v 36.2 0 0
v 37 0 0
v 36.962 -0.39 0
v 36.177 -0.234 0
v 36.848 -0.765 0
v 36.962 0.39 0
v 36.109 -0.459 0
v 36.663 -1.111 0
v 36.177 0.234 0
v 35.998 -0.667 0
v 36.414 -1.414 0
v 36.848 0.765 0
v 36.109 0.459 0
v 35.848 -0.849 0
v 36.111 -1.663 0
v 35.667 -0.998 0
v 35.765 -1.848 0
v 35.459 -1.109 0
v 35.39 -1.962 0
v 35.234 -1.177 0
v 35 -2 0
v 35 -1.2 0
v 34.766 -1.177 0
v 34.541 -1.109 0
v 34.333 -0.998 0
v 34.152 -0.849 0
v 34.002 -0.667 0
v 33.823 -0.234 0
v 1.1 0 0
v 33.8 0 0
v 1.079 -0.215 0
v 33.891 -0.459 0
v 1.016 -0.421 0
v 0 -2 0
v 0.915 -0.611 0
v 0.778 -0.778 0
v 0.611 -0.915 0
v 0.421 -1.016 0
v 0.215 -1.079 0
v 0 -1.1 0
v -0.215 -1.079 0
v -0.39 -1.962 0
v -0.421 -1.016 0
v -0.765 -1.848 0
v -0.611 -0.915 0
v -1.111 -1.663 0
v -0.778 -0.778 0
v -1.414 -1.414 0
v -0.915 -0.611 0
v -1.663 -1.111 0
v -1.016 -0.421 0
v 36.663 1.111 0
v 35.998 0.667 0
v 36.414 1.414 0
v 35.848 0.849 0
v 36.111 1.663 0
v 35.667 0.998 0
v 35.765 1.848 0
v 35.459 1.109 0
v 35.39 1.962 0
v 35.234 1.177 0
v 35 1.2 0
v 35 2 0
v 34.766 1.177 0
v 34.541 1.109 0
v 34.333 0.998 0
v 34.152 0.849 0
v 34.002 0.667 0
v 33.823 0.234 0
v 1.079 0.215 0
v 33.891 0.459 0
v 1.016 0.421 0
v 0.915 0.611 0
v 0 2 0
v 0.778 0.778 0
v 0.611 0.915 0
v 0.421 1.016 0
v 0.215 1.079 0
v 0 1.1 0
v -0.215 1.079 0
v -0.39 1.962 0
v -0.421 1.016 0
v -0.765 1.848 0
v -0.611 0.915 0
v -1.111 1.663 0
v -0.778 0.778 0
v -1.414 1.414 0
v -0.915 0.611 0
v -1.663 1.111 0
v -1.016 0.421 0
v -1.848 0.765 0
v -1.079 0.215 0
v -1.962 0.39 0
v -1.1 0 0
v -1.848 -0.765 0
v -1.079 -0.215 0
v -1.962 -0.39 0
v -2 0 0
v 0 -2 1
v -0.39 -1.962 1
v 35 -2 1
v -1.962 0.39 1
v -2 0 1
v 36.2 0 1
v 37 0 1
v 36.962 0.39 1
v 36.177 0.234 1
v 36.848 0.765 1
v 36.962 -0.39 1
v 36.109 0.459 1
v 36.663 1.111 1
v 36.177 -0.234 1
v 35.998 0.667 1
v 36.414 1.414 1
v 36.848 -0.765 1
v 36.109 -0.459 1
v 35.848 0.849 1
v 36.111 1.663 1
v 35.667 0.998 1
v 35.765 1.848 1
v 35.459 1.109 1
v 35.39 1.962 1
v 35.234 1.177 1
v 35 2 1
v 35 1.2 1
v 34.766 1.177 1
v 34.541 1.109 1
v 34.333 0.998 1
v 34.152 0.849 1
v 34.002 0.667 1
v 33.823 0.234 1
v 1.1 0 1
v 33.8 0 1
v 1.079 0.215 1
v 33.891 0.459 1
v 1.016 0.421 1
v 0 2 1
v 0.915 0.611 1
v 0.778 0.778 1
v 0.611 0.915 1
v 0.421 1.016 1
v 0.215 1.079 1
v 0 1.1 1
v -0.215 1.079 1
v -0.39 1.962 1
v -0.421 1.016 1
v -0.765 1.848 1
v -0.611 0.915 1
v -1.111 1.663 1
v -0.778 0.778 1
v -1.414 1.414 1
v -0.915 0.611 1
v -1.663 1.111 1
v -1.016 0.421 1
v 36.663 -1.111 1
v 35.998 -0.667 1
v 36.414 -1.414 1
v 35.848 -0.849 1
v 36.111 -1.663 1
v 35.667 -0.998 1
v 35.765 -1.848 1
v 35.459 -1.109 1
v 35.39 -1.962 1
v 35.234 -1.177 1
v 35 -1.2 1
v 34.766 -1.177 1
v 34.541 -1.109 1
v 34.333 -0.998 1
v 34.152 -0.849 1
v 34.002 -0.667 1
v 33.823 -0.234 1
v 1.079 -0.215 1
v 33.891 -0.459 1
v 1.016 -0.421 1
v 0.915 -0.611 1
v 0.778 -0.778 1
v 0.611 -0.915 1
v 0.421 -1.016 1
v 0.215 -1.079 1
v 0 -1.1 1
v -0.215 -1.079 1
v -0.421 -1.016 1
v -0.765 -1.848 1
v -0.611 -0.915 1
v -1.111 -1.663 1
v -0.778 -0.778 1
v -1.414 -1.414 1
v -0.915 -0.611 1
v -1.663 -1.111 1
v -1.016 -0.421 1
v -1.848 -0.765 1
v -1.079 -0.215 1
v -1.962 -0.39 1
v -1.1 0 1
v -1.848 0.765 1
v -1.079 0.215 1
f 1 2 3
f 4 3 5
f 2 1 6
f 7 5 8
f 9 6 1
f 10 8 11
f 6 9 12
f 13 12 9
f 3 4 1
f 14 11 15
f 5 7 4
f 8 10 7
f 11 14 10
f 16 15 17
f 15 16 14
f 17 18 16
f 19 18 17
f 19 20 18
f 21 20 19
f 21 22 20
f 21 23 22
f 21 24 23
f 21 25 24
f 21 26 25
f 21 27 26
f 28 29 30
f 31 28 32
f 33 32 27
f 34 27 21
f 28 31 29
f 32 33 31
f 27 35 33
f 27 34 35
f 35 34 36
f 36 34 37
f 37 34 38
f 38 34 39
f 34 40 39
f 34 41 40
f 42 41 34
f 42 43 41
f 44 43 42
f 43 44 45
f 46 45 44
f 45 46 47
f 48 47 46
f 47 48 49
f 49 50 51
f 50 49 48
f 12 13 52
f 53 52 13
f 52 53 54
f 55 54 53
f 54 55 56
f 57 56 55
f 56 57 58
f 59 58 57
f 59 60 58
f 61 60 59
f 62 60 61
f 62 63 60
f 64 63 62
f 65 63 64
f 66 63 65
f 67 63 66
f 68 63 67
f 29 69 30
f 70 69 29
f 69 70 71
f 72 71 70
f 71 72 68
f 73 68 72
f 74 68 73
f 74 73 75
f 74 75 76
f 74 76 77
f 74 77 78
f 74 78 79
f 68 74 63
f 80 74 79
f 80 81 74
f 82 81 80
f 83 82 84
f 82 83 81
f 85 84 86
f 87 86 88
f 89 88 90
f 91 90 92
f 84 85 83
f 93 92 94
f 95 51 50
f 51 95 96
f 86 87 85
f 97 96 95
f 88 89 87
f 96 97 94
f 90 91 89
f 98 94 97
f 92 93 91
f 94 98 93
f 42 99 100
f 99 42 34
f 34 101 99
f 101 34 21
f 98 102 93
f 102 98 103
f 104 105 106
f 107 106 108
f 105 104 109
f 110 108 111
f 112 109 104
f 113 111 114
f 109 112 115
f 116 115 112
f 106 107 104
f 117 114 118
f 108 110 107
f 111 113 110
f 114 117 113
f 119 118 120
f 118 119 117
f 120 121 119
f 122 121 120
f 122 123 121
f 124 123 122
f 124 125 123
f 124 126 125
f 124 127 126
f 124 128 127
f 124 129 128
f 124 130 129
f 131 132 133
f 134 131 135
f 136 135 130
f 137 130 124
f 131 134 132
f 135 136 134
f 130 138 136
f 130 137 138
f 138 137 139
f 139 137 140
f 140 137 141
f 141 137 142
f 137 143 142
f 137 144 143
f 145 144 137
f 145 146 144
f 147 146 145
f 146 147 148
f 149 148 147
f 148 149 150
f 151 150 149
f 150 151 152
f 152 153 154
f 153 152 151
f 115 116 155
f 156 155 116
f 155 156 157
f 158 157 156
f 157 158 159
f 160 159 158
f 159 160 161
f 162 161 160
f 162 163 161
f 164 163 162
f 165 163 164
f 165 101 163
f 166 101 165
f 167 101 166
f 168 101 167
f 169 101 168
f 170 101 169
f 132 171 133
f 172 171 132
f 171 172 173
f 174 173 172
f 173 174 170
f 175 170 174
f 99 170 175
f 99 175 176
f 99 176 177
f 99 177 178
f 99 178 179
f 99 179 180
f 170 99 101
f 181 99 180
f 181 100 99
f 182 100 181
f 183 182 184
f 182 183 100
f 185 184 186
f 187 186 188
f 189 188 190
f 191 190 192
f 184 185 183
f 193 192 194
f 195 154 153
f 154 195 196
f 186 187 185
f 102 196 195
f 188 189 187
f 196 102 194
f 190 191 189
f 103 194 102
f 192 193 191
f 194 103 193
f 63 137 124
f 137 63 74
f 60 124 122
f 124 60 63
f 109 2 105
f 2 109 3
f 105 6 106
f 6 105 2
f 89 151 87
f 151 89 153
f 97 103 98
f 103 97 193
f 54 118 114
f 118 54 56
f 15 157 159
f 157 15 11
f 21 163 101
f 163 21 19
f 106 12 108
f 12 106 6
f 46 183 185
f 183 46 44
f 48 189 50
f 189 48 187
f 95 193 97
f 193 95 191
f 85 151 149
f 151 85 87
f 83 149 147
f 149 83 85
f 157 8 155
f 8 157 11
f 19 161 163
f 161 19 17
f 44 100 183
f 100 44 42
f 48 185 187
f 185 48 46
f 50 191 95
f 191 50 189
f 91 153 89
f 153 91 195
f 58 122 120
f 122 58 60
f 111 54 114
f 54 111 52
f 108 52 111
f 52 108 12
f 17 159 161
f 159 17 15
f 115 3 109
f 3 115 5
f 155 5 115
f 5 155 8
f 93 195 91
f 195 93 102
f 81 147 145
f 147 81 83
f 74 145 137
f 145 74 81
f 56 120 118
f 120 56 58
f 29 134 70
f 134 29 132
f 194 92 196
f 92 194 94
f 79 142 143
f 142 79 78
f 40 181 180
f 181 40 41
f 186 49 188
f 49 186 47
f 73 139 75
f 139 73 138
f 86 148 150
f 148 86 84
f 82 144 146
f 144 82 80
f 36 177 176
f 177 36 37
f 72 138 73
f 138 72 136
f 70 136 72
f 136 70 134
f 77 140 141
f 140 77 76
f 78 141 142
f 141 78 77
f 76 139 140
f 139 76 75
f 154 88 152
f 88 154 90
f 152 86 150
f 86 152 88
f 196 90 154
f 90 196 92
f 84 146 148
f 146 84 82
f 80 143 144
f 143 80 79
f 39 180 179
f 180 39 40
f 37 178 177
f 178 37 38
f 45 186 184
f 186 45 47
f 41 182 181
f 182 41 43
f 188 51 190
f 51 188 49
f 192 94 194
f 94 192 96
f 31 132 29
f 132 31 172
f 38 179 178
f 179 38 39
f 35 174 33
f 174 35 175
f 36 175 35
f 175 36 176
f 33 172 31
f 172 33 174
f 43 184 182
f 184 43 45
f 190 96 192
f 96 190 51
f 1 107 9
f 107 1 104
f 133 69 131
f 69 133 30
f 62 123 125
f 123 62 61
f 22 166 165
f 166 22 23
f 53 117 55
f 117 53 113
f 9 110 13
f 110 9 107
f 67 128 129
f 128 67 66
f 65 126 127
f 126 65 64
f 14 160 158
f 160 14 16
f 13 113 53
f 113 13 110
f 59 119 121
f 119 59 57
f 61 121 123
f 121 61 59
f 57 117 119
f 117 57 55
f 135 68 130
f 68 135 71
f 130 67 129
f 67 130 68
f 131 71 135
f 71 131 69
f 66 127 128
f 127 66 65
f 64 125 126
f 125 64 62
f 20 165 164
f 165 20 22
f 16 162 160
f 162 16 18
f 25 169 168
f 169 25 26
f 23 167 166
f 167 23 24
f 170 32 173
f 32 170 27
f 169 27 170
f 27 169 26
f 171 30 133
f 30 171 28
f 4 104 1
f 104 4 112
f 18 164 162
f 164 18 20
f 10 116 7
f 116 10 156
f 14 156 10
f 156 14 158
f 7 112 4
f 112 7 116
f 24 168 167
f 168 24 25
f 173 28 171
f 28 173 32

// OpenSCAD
h = 1;
l = 35;

difference() {
    hull() {
        cylinder($fn=32, h=h, d=4);
        translate([l,0,0]) cylinder($fn=32, h=h, d=4);
    }
    cylinder($fn=32, h=h, d=2.2);
    translate([l,0,0]) cylinder($fn=32, h=h, d=2.4);
}
